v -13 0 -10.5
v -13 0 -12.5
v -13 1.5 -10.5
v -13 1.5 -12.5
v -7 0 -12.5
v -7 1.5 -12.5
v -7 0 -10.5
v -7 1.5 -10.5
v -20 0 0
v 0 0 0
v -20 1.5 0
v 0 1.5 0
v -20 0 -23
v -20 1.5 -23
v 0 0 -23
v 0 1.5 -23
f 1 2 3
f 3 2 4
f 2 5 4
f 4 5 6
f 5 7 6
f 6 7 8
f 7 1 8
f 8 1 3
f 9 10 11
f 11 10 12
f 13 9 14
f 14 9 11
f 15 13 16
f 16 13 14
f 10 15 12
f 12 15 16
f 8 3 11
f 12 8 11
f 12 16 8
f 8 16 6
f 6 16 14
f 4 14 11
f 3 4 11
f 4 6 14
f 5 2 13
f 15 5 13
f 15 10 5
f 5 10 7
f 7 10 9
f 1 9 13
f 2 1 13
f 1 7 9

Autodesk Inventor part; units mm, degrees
ref_plane "YZ Plane" through (0, 0, 0) normal (1, 0, 0) x (0, 1, 0)
ref_plane "XZ Plane" through (0, 0, 0) normal (0, 1, 0) x (-1, 0, 0)
ref_plane "XY Plane" through (0, 0, 0) normal (0, 0, 1) x (1, 0, 0)
sketch "Sketch1" plane through (0, 0, 0) normal (0, 1, 0) x (-1, 0, 0)
  line L0 (0, 0) -> (0, -23)
  line L1 (0, -23) -> (20, -23)
  line L2 (20, -23) -> (20, 0)
  line L3 (16.0214, -11.5) -> (3.8301, -11.5) construction
  line L4 (20, 0) -> (0, 0)
  line L5 (13, -10.5) -> (7, -10.5)
  line L6 (7, -10.5) -> (7, -12.5)
  line L7 (7, -12.5) -> (13, -12.5)
  line L8 (13, -12.5) -> (13, -10.5)
  line L9 (10, -8) -> (10, -15) construction
  dimension "d0" = 23
  dimension "d10" = 20
  dimension "d13" = 10
  dimension "d14" = 2
  dimension "d15" = 6
extrude "Extrusion4" add sketch "Sketch1" along normal blind 1.5
properties part number "Distance_test_adaptor_slit_2mm"
